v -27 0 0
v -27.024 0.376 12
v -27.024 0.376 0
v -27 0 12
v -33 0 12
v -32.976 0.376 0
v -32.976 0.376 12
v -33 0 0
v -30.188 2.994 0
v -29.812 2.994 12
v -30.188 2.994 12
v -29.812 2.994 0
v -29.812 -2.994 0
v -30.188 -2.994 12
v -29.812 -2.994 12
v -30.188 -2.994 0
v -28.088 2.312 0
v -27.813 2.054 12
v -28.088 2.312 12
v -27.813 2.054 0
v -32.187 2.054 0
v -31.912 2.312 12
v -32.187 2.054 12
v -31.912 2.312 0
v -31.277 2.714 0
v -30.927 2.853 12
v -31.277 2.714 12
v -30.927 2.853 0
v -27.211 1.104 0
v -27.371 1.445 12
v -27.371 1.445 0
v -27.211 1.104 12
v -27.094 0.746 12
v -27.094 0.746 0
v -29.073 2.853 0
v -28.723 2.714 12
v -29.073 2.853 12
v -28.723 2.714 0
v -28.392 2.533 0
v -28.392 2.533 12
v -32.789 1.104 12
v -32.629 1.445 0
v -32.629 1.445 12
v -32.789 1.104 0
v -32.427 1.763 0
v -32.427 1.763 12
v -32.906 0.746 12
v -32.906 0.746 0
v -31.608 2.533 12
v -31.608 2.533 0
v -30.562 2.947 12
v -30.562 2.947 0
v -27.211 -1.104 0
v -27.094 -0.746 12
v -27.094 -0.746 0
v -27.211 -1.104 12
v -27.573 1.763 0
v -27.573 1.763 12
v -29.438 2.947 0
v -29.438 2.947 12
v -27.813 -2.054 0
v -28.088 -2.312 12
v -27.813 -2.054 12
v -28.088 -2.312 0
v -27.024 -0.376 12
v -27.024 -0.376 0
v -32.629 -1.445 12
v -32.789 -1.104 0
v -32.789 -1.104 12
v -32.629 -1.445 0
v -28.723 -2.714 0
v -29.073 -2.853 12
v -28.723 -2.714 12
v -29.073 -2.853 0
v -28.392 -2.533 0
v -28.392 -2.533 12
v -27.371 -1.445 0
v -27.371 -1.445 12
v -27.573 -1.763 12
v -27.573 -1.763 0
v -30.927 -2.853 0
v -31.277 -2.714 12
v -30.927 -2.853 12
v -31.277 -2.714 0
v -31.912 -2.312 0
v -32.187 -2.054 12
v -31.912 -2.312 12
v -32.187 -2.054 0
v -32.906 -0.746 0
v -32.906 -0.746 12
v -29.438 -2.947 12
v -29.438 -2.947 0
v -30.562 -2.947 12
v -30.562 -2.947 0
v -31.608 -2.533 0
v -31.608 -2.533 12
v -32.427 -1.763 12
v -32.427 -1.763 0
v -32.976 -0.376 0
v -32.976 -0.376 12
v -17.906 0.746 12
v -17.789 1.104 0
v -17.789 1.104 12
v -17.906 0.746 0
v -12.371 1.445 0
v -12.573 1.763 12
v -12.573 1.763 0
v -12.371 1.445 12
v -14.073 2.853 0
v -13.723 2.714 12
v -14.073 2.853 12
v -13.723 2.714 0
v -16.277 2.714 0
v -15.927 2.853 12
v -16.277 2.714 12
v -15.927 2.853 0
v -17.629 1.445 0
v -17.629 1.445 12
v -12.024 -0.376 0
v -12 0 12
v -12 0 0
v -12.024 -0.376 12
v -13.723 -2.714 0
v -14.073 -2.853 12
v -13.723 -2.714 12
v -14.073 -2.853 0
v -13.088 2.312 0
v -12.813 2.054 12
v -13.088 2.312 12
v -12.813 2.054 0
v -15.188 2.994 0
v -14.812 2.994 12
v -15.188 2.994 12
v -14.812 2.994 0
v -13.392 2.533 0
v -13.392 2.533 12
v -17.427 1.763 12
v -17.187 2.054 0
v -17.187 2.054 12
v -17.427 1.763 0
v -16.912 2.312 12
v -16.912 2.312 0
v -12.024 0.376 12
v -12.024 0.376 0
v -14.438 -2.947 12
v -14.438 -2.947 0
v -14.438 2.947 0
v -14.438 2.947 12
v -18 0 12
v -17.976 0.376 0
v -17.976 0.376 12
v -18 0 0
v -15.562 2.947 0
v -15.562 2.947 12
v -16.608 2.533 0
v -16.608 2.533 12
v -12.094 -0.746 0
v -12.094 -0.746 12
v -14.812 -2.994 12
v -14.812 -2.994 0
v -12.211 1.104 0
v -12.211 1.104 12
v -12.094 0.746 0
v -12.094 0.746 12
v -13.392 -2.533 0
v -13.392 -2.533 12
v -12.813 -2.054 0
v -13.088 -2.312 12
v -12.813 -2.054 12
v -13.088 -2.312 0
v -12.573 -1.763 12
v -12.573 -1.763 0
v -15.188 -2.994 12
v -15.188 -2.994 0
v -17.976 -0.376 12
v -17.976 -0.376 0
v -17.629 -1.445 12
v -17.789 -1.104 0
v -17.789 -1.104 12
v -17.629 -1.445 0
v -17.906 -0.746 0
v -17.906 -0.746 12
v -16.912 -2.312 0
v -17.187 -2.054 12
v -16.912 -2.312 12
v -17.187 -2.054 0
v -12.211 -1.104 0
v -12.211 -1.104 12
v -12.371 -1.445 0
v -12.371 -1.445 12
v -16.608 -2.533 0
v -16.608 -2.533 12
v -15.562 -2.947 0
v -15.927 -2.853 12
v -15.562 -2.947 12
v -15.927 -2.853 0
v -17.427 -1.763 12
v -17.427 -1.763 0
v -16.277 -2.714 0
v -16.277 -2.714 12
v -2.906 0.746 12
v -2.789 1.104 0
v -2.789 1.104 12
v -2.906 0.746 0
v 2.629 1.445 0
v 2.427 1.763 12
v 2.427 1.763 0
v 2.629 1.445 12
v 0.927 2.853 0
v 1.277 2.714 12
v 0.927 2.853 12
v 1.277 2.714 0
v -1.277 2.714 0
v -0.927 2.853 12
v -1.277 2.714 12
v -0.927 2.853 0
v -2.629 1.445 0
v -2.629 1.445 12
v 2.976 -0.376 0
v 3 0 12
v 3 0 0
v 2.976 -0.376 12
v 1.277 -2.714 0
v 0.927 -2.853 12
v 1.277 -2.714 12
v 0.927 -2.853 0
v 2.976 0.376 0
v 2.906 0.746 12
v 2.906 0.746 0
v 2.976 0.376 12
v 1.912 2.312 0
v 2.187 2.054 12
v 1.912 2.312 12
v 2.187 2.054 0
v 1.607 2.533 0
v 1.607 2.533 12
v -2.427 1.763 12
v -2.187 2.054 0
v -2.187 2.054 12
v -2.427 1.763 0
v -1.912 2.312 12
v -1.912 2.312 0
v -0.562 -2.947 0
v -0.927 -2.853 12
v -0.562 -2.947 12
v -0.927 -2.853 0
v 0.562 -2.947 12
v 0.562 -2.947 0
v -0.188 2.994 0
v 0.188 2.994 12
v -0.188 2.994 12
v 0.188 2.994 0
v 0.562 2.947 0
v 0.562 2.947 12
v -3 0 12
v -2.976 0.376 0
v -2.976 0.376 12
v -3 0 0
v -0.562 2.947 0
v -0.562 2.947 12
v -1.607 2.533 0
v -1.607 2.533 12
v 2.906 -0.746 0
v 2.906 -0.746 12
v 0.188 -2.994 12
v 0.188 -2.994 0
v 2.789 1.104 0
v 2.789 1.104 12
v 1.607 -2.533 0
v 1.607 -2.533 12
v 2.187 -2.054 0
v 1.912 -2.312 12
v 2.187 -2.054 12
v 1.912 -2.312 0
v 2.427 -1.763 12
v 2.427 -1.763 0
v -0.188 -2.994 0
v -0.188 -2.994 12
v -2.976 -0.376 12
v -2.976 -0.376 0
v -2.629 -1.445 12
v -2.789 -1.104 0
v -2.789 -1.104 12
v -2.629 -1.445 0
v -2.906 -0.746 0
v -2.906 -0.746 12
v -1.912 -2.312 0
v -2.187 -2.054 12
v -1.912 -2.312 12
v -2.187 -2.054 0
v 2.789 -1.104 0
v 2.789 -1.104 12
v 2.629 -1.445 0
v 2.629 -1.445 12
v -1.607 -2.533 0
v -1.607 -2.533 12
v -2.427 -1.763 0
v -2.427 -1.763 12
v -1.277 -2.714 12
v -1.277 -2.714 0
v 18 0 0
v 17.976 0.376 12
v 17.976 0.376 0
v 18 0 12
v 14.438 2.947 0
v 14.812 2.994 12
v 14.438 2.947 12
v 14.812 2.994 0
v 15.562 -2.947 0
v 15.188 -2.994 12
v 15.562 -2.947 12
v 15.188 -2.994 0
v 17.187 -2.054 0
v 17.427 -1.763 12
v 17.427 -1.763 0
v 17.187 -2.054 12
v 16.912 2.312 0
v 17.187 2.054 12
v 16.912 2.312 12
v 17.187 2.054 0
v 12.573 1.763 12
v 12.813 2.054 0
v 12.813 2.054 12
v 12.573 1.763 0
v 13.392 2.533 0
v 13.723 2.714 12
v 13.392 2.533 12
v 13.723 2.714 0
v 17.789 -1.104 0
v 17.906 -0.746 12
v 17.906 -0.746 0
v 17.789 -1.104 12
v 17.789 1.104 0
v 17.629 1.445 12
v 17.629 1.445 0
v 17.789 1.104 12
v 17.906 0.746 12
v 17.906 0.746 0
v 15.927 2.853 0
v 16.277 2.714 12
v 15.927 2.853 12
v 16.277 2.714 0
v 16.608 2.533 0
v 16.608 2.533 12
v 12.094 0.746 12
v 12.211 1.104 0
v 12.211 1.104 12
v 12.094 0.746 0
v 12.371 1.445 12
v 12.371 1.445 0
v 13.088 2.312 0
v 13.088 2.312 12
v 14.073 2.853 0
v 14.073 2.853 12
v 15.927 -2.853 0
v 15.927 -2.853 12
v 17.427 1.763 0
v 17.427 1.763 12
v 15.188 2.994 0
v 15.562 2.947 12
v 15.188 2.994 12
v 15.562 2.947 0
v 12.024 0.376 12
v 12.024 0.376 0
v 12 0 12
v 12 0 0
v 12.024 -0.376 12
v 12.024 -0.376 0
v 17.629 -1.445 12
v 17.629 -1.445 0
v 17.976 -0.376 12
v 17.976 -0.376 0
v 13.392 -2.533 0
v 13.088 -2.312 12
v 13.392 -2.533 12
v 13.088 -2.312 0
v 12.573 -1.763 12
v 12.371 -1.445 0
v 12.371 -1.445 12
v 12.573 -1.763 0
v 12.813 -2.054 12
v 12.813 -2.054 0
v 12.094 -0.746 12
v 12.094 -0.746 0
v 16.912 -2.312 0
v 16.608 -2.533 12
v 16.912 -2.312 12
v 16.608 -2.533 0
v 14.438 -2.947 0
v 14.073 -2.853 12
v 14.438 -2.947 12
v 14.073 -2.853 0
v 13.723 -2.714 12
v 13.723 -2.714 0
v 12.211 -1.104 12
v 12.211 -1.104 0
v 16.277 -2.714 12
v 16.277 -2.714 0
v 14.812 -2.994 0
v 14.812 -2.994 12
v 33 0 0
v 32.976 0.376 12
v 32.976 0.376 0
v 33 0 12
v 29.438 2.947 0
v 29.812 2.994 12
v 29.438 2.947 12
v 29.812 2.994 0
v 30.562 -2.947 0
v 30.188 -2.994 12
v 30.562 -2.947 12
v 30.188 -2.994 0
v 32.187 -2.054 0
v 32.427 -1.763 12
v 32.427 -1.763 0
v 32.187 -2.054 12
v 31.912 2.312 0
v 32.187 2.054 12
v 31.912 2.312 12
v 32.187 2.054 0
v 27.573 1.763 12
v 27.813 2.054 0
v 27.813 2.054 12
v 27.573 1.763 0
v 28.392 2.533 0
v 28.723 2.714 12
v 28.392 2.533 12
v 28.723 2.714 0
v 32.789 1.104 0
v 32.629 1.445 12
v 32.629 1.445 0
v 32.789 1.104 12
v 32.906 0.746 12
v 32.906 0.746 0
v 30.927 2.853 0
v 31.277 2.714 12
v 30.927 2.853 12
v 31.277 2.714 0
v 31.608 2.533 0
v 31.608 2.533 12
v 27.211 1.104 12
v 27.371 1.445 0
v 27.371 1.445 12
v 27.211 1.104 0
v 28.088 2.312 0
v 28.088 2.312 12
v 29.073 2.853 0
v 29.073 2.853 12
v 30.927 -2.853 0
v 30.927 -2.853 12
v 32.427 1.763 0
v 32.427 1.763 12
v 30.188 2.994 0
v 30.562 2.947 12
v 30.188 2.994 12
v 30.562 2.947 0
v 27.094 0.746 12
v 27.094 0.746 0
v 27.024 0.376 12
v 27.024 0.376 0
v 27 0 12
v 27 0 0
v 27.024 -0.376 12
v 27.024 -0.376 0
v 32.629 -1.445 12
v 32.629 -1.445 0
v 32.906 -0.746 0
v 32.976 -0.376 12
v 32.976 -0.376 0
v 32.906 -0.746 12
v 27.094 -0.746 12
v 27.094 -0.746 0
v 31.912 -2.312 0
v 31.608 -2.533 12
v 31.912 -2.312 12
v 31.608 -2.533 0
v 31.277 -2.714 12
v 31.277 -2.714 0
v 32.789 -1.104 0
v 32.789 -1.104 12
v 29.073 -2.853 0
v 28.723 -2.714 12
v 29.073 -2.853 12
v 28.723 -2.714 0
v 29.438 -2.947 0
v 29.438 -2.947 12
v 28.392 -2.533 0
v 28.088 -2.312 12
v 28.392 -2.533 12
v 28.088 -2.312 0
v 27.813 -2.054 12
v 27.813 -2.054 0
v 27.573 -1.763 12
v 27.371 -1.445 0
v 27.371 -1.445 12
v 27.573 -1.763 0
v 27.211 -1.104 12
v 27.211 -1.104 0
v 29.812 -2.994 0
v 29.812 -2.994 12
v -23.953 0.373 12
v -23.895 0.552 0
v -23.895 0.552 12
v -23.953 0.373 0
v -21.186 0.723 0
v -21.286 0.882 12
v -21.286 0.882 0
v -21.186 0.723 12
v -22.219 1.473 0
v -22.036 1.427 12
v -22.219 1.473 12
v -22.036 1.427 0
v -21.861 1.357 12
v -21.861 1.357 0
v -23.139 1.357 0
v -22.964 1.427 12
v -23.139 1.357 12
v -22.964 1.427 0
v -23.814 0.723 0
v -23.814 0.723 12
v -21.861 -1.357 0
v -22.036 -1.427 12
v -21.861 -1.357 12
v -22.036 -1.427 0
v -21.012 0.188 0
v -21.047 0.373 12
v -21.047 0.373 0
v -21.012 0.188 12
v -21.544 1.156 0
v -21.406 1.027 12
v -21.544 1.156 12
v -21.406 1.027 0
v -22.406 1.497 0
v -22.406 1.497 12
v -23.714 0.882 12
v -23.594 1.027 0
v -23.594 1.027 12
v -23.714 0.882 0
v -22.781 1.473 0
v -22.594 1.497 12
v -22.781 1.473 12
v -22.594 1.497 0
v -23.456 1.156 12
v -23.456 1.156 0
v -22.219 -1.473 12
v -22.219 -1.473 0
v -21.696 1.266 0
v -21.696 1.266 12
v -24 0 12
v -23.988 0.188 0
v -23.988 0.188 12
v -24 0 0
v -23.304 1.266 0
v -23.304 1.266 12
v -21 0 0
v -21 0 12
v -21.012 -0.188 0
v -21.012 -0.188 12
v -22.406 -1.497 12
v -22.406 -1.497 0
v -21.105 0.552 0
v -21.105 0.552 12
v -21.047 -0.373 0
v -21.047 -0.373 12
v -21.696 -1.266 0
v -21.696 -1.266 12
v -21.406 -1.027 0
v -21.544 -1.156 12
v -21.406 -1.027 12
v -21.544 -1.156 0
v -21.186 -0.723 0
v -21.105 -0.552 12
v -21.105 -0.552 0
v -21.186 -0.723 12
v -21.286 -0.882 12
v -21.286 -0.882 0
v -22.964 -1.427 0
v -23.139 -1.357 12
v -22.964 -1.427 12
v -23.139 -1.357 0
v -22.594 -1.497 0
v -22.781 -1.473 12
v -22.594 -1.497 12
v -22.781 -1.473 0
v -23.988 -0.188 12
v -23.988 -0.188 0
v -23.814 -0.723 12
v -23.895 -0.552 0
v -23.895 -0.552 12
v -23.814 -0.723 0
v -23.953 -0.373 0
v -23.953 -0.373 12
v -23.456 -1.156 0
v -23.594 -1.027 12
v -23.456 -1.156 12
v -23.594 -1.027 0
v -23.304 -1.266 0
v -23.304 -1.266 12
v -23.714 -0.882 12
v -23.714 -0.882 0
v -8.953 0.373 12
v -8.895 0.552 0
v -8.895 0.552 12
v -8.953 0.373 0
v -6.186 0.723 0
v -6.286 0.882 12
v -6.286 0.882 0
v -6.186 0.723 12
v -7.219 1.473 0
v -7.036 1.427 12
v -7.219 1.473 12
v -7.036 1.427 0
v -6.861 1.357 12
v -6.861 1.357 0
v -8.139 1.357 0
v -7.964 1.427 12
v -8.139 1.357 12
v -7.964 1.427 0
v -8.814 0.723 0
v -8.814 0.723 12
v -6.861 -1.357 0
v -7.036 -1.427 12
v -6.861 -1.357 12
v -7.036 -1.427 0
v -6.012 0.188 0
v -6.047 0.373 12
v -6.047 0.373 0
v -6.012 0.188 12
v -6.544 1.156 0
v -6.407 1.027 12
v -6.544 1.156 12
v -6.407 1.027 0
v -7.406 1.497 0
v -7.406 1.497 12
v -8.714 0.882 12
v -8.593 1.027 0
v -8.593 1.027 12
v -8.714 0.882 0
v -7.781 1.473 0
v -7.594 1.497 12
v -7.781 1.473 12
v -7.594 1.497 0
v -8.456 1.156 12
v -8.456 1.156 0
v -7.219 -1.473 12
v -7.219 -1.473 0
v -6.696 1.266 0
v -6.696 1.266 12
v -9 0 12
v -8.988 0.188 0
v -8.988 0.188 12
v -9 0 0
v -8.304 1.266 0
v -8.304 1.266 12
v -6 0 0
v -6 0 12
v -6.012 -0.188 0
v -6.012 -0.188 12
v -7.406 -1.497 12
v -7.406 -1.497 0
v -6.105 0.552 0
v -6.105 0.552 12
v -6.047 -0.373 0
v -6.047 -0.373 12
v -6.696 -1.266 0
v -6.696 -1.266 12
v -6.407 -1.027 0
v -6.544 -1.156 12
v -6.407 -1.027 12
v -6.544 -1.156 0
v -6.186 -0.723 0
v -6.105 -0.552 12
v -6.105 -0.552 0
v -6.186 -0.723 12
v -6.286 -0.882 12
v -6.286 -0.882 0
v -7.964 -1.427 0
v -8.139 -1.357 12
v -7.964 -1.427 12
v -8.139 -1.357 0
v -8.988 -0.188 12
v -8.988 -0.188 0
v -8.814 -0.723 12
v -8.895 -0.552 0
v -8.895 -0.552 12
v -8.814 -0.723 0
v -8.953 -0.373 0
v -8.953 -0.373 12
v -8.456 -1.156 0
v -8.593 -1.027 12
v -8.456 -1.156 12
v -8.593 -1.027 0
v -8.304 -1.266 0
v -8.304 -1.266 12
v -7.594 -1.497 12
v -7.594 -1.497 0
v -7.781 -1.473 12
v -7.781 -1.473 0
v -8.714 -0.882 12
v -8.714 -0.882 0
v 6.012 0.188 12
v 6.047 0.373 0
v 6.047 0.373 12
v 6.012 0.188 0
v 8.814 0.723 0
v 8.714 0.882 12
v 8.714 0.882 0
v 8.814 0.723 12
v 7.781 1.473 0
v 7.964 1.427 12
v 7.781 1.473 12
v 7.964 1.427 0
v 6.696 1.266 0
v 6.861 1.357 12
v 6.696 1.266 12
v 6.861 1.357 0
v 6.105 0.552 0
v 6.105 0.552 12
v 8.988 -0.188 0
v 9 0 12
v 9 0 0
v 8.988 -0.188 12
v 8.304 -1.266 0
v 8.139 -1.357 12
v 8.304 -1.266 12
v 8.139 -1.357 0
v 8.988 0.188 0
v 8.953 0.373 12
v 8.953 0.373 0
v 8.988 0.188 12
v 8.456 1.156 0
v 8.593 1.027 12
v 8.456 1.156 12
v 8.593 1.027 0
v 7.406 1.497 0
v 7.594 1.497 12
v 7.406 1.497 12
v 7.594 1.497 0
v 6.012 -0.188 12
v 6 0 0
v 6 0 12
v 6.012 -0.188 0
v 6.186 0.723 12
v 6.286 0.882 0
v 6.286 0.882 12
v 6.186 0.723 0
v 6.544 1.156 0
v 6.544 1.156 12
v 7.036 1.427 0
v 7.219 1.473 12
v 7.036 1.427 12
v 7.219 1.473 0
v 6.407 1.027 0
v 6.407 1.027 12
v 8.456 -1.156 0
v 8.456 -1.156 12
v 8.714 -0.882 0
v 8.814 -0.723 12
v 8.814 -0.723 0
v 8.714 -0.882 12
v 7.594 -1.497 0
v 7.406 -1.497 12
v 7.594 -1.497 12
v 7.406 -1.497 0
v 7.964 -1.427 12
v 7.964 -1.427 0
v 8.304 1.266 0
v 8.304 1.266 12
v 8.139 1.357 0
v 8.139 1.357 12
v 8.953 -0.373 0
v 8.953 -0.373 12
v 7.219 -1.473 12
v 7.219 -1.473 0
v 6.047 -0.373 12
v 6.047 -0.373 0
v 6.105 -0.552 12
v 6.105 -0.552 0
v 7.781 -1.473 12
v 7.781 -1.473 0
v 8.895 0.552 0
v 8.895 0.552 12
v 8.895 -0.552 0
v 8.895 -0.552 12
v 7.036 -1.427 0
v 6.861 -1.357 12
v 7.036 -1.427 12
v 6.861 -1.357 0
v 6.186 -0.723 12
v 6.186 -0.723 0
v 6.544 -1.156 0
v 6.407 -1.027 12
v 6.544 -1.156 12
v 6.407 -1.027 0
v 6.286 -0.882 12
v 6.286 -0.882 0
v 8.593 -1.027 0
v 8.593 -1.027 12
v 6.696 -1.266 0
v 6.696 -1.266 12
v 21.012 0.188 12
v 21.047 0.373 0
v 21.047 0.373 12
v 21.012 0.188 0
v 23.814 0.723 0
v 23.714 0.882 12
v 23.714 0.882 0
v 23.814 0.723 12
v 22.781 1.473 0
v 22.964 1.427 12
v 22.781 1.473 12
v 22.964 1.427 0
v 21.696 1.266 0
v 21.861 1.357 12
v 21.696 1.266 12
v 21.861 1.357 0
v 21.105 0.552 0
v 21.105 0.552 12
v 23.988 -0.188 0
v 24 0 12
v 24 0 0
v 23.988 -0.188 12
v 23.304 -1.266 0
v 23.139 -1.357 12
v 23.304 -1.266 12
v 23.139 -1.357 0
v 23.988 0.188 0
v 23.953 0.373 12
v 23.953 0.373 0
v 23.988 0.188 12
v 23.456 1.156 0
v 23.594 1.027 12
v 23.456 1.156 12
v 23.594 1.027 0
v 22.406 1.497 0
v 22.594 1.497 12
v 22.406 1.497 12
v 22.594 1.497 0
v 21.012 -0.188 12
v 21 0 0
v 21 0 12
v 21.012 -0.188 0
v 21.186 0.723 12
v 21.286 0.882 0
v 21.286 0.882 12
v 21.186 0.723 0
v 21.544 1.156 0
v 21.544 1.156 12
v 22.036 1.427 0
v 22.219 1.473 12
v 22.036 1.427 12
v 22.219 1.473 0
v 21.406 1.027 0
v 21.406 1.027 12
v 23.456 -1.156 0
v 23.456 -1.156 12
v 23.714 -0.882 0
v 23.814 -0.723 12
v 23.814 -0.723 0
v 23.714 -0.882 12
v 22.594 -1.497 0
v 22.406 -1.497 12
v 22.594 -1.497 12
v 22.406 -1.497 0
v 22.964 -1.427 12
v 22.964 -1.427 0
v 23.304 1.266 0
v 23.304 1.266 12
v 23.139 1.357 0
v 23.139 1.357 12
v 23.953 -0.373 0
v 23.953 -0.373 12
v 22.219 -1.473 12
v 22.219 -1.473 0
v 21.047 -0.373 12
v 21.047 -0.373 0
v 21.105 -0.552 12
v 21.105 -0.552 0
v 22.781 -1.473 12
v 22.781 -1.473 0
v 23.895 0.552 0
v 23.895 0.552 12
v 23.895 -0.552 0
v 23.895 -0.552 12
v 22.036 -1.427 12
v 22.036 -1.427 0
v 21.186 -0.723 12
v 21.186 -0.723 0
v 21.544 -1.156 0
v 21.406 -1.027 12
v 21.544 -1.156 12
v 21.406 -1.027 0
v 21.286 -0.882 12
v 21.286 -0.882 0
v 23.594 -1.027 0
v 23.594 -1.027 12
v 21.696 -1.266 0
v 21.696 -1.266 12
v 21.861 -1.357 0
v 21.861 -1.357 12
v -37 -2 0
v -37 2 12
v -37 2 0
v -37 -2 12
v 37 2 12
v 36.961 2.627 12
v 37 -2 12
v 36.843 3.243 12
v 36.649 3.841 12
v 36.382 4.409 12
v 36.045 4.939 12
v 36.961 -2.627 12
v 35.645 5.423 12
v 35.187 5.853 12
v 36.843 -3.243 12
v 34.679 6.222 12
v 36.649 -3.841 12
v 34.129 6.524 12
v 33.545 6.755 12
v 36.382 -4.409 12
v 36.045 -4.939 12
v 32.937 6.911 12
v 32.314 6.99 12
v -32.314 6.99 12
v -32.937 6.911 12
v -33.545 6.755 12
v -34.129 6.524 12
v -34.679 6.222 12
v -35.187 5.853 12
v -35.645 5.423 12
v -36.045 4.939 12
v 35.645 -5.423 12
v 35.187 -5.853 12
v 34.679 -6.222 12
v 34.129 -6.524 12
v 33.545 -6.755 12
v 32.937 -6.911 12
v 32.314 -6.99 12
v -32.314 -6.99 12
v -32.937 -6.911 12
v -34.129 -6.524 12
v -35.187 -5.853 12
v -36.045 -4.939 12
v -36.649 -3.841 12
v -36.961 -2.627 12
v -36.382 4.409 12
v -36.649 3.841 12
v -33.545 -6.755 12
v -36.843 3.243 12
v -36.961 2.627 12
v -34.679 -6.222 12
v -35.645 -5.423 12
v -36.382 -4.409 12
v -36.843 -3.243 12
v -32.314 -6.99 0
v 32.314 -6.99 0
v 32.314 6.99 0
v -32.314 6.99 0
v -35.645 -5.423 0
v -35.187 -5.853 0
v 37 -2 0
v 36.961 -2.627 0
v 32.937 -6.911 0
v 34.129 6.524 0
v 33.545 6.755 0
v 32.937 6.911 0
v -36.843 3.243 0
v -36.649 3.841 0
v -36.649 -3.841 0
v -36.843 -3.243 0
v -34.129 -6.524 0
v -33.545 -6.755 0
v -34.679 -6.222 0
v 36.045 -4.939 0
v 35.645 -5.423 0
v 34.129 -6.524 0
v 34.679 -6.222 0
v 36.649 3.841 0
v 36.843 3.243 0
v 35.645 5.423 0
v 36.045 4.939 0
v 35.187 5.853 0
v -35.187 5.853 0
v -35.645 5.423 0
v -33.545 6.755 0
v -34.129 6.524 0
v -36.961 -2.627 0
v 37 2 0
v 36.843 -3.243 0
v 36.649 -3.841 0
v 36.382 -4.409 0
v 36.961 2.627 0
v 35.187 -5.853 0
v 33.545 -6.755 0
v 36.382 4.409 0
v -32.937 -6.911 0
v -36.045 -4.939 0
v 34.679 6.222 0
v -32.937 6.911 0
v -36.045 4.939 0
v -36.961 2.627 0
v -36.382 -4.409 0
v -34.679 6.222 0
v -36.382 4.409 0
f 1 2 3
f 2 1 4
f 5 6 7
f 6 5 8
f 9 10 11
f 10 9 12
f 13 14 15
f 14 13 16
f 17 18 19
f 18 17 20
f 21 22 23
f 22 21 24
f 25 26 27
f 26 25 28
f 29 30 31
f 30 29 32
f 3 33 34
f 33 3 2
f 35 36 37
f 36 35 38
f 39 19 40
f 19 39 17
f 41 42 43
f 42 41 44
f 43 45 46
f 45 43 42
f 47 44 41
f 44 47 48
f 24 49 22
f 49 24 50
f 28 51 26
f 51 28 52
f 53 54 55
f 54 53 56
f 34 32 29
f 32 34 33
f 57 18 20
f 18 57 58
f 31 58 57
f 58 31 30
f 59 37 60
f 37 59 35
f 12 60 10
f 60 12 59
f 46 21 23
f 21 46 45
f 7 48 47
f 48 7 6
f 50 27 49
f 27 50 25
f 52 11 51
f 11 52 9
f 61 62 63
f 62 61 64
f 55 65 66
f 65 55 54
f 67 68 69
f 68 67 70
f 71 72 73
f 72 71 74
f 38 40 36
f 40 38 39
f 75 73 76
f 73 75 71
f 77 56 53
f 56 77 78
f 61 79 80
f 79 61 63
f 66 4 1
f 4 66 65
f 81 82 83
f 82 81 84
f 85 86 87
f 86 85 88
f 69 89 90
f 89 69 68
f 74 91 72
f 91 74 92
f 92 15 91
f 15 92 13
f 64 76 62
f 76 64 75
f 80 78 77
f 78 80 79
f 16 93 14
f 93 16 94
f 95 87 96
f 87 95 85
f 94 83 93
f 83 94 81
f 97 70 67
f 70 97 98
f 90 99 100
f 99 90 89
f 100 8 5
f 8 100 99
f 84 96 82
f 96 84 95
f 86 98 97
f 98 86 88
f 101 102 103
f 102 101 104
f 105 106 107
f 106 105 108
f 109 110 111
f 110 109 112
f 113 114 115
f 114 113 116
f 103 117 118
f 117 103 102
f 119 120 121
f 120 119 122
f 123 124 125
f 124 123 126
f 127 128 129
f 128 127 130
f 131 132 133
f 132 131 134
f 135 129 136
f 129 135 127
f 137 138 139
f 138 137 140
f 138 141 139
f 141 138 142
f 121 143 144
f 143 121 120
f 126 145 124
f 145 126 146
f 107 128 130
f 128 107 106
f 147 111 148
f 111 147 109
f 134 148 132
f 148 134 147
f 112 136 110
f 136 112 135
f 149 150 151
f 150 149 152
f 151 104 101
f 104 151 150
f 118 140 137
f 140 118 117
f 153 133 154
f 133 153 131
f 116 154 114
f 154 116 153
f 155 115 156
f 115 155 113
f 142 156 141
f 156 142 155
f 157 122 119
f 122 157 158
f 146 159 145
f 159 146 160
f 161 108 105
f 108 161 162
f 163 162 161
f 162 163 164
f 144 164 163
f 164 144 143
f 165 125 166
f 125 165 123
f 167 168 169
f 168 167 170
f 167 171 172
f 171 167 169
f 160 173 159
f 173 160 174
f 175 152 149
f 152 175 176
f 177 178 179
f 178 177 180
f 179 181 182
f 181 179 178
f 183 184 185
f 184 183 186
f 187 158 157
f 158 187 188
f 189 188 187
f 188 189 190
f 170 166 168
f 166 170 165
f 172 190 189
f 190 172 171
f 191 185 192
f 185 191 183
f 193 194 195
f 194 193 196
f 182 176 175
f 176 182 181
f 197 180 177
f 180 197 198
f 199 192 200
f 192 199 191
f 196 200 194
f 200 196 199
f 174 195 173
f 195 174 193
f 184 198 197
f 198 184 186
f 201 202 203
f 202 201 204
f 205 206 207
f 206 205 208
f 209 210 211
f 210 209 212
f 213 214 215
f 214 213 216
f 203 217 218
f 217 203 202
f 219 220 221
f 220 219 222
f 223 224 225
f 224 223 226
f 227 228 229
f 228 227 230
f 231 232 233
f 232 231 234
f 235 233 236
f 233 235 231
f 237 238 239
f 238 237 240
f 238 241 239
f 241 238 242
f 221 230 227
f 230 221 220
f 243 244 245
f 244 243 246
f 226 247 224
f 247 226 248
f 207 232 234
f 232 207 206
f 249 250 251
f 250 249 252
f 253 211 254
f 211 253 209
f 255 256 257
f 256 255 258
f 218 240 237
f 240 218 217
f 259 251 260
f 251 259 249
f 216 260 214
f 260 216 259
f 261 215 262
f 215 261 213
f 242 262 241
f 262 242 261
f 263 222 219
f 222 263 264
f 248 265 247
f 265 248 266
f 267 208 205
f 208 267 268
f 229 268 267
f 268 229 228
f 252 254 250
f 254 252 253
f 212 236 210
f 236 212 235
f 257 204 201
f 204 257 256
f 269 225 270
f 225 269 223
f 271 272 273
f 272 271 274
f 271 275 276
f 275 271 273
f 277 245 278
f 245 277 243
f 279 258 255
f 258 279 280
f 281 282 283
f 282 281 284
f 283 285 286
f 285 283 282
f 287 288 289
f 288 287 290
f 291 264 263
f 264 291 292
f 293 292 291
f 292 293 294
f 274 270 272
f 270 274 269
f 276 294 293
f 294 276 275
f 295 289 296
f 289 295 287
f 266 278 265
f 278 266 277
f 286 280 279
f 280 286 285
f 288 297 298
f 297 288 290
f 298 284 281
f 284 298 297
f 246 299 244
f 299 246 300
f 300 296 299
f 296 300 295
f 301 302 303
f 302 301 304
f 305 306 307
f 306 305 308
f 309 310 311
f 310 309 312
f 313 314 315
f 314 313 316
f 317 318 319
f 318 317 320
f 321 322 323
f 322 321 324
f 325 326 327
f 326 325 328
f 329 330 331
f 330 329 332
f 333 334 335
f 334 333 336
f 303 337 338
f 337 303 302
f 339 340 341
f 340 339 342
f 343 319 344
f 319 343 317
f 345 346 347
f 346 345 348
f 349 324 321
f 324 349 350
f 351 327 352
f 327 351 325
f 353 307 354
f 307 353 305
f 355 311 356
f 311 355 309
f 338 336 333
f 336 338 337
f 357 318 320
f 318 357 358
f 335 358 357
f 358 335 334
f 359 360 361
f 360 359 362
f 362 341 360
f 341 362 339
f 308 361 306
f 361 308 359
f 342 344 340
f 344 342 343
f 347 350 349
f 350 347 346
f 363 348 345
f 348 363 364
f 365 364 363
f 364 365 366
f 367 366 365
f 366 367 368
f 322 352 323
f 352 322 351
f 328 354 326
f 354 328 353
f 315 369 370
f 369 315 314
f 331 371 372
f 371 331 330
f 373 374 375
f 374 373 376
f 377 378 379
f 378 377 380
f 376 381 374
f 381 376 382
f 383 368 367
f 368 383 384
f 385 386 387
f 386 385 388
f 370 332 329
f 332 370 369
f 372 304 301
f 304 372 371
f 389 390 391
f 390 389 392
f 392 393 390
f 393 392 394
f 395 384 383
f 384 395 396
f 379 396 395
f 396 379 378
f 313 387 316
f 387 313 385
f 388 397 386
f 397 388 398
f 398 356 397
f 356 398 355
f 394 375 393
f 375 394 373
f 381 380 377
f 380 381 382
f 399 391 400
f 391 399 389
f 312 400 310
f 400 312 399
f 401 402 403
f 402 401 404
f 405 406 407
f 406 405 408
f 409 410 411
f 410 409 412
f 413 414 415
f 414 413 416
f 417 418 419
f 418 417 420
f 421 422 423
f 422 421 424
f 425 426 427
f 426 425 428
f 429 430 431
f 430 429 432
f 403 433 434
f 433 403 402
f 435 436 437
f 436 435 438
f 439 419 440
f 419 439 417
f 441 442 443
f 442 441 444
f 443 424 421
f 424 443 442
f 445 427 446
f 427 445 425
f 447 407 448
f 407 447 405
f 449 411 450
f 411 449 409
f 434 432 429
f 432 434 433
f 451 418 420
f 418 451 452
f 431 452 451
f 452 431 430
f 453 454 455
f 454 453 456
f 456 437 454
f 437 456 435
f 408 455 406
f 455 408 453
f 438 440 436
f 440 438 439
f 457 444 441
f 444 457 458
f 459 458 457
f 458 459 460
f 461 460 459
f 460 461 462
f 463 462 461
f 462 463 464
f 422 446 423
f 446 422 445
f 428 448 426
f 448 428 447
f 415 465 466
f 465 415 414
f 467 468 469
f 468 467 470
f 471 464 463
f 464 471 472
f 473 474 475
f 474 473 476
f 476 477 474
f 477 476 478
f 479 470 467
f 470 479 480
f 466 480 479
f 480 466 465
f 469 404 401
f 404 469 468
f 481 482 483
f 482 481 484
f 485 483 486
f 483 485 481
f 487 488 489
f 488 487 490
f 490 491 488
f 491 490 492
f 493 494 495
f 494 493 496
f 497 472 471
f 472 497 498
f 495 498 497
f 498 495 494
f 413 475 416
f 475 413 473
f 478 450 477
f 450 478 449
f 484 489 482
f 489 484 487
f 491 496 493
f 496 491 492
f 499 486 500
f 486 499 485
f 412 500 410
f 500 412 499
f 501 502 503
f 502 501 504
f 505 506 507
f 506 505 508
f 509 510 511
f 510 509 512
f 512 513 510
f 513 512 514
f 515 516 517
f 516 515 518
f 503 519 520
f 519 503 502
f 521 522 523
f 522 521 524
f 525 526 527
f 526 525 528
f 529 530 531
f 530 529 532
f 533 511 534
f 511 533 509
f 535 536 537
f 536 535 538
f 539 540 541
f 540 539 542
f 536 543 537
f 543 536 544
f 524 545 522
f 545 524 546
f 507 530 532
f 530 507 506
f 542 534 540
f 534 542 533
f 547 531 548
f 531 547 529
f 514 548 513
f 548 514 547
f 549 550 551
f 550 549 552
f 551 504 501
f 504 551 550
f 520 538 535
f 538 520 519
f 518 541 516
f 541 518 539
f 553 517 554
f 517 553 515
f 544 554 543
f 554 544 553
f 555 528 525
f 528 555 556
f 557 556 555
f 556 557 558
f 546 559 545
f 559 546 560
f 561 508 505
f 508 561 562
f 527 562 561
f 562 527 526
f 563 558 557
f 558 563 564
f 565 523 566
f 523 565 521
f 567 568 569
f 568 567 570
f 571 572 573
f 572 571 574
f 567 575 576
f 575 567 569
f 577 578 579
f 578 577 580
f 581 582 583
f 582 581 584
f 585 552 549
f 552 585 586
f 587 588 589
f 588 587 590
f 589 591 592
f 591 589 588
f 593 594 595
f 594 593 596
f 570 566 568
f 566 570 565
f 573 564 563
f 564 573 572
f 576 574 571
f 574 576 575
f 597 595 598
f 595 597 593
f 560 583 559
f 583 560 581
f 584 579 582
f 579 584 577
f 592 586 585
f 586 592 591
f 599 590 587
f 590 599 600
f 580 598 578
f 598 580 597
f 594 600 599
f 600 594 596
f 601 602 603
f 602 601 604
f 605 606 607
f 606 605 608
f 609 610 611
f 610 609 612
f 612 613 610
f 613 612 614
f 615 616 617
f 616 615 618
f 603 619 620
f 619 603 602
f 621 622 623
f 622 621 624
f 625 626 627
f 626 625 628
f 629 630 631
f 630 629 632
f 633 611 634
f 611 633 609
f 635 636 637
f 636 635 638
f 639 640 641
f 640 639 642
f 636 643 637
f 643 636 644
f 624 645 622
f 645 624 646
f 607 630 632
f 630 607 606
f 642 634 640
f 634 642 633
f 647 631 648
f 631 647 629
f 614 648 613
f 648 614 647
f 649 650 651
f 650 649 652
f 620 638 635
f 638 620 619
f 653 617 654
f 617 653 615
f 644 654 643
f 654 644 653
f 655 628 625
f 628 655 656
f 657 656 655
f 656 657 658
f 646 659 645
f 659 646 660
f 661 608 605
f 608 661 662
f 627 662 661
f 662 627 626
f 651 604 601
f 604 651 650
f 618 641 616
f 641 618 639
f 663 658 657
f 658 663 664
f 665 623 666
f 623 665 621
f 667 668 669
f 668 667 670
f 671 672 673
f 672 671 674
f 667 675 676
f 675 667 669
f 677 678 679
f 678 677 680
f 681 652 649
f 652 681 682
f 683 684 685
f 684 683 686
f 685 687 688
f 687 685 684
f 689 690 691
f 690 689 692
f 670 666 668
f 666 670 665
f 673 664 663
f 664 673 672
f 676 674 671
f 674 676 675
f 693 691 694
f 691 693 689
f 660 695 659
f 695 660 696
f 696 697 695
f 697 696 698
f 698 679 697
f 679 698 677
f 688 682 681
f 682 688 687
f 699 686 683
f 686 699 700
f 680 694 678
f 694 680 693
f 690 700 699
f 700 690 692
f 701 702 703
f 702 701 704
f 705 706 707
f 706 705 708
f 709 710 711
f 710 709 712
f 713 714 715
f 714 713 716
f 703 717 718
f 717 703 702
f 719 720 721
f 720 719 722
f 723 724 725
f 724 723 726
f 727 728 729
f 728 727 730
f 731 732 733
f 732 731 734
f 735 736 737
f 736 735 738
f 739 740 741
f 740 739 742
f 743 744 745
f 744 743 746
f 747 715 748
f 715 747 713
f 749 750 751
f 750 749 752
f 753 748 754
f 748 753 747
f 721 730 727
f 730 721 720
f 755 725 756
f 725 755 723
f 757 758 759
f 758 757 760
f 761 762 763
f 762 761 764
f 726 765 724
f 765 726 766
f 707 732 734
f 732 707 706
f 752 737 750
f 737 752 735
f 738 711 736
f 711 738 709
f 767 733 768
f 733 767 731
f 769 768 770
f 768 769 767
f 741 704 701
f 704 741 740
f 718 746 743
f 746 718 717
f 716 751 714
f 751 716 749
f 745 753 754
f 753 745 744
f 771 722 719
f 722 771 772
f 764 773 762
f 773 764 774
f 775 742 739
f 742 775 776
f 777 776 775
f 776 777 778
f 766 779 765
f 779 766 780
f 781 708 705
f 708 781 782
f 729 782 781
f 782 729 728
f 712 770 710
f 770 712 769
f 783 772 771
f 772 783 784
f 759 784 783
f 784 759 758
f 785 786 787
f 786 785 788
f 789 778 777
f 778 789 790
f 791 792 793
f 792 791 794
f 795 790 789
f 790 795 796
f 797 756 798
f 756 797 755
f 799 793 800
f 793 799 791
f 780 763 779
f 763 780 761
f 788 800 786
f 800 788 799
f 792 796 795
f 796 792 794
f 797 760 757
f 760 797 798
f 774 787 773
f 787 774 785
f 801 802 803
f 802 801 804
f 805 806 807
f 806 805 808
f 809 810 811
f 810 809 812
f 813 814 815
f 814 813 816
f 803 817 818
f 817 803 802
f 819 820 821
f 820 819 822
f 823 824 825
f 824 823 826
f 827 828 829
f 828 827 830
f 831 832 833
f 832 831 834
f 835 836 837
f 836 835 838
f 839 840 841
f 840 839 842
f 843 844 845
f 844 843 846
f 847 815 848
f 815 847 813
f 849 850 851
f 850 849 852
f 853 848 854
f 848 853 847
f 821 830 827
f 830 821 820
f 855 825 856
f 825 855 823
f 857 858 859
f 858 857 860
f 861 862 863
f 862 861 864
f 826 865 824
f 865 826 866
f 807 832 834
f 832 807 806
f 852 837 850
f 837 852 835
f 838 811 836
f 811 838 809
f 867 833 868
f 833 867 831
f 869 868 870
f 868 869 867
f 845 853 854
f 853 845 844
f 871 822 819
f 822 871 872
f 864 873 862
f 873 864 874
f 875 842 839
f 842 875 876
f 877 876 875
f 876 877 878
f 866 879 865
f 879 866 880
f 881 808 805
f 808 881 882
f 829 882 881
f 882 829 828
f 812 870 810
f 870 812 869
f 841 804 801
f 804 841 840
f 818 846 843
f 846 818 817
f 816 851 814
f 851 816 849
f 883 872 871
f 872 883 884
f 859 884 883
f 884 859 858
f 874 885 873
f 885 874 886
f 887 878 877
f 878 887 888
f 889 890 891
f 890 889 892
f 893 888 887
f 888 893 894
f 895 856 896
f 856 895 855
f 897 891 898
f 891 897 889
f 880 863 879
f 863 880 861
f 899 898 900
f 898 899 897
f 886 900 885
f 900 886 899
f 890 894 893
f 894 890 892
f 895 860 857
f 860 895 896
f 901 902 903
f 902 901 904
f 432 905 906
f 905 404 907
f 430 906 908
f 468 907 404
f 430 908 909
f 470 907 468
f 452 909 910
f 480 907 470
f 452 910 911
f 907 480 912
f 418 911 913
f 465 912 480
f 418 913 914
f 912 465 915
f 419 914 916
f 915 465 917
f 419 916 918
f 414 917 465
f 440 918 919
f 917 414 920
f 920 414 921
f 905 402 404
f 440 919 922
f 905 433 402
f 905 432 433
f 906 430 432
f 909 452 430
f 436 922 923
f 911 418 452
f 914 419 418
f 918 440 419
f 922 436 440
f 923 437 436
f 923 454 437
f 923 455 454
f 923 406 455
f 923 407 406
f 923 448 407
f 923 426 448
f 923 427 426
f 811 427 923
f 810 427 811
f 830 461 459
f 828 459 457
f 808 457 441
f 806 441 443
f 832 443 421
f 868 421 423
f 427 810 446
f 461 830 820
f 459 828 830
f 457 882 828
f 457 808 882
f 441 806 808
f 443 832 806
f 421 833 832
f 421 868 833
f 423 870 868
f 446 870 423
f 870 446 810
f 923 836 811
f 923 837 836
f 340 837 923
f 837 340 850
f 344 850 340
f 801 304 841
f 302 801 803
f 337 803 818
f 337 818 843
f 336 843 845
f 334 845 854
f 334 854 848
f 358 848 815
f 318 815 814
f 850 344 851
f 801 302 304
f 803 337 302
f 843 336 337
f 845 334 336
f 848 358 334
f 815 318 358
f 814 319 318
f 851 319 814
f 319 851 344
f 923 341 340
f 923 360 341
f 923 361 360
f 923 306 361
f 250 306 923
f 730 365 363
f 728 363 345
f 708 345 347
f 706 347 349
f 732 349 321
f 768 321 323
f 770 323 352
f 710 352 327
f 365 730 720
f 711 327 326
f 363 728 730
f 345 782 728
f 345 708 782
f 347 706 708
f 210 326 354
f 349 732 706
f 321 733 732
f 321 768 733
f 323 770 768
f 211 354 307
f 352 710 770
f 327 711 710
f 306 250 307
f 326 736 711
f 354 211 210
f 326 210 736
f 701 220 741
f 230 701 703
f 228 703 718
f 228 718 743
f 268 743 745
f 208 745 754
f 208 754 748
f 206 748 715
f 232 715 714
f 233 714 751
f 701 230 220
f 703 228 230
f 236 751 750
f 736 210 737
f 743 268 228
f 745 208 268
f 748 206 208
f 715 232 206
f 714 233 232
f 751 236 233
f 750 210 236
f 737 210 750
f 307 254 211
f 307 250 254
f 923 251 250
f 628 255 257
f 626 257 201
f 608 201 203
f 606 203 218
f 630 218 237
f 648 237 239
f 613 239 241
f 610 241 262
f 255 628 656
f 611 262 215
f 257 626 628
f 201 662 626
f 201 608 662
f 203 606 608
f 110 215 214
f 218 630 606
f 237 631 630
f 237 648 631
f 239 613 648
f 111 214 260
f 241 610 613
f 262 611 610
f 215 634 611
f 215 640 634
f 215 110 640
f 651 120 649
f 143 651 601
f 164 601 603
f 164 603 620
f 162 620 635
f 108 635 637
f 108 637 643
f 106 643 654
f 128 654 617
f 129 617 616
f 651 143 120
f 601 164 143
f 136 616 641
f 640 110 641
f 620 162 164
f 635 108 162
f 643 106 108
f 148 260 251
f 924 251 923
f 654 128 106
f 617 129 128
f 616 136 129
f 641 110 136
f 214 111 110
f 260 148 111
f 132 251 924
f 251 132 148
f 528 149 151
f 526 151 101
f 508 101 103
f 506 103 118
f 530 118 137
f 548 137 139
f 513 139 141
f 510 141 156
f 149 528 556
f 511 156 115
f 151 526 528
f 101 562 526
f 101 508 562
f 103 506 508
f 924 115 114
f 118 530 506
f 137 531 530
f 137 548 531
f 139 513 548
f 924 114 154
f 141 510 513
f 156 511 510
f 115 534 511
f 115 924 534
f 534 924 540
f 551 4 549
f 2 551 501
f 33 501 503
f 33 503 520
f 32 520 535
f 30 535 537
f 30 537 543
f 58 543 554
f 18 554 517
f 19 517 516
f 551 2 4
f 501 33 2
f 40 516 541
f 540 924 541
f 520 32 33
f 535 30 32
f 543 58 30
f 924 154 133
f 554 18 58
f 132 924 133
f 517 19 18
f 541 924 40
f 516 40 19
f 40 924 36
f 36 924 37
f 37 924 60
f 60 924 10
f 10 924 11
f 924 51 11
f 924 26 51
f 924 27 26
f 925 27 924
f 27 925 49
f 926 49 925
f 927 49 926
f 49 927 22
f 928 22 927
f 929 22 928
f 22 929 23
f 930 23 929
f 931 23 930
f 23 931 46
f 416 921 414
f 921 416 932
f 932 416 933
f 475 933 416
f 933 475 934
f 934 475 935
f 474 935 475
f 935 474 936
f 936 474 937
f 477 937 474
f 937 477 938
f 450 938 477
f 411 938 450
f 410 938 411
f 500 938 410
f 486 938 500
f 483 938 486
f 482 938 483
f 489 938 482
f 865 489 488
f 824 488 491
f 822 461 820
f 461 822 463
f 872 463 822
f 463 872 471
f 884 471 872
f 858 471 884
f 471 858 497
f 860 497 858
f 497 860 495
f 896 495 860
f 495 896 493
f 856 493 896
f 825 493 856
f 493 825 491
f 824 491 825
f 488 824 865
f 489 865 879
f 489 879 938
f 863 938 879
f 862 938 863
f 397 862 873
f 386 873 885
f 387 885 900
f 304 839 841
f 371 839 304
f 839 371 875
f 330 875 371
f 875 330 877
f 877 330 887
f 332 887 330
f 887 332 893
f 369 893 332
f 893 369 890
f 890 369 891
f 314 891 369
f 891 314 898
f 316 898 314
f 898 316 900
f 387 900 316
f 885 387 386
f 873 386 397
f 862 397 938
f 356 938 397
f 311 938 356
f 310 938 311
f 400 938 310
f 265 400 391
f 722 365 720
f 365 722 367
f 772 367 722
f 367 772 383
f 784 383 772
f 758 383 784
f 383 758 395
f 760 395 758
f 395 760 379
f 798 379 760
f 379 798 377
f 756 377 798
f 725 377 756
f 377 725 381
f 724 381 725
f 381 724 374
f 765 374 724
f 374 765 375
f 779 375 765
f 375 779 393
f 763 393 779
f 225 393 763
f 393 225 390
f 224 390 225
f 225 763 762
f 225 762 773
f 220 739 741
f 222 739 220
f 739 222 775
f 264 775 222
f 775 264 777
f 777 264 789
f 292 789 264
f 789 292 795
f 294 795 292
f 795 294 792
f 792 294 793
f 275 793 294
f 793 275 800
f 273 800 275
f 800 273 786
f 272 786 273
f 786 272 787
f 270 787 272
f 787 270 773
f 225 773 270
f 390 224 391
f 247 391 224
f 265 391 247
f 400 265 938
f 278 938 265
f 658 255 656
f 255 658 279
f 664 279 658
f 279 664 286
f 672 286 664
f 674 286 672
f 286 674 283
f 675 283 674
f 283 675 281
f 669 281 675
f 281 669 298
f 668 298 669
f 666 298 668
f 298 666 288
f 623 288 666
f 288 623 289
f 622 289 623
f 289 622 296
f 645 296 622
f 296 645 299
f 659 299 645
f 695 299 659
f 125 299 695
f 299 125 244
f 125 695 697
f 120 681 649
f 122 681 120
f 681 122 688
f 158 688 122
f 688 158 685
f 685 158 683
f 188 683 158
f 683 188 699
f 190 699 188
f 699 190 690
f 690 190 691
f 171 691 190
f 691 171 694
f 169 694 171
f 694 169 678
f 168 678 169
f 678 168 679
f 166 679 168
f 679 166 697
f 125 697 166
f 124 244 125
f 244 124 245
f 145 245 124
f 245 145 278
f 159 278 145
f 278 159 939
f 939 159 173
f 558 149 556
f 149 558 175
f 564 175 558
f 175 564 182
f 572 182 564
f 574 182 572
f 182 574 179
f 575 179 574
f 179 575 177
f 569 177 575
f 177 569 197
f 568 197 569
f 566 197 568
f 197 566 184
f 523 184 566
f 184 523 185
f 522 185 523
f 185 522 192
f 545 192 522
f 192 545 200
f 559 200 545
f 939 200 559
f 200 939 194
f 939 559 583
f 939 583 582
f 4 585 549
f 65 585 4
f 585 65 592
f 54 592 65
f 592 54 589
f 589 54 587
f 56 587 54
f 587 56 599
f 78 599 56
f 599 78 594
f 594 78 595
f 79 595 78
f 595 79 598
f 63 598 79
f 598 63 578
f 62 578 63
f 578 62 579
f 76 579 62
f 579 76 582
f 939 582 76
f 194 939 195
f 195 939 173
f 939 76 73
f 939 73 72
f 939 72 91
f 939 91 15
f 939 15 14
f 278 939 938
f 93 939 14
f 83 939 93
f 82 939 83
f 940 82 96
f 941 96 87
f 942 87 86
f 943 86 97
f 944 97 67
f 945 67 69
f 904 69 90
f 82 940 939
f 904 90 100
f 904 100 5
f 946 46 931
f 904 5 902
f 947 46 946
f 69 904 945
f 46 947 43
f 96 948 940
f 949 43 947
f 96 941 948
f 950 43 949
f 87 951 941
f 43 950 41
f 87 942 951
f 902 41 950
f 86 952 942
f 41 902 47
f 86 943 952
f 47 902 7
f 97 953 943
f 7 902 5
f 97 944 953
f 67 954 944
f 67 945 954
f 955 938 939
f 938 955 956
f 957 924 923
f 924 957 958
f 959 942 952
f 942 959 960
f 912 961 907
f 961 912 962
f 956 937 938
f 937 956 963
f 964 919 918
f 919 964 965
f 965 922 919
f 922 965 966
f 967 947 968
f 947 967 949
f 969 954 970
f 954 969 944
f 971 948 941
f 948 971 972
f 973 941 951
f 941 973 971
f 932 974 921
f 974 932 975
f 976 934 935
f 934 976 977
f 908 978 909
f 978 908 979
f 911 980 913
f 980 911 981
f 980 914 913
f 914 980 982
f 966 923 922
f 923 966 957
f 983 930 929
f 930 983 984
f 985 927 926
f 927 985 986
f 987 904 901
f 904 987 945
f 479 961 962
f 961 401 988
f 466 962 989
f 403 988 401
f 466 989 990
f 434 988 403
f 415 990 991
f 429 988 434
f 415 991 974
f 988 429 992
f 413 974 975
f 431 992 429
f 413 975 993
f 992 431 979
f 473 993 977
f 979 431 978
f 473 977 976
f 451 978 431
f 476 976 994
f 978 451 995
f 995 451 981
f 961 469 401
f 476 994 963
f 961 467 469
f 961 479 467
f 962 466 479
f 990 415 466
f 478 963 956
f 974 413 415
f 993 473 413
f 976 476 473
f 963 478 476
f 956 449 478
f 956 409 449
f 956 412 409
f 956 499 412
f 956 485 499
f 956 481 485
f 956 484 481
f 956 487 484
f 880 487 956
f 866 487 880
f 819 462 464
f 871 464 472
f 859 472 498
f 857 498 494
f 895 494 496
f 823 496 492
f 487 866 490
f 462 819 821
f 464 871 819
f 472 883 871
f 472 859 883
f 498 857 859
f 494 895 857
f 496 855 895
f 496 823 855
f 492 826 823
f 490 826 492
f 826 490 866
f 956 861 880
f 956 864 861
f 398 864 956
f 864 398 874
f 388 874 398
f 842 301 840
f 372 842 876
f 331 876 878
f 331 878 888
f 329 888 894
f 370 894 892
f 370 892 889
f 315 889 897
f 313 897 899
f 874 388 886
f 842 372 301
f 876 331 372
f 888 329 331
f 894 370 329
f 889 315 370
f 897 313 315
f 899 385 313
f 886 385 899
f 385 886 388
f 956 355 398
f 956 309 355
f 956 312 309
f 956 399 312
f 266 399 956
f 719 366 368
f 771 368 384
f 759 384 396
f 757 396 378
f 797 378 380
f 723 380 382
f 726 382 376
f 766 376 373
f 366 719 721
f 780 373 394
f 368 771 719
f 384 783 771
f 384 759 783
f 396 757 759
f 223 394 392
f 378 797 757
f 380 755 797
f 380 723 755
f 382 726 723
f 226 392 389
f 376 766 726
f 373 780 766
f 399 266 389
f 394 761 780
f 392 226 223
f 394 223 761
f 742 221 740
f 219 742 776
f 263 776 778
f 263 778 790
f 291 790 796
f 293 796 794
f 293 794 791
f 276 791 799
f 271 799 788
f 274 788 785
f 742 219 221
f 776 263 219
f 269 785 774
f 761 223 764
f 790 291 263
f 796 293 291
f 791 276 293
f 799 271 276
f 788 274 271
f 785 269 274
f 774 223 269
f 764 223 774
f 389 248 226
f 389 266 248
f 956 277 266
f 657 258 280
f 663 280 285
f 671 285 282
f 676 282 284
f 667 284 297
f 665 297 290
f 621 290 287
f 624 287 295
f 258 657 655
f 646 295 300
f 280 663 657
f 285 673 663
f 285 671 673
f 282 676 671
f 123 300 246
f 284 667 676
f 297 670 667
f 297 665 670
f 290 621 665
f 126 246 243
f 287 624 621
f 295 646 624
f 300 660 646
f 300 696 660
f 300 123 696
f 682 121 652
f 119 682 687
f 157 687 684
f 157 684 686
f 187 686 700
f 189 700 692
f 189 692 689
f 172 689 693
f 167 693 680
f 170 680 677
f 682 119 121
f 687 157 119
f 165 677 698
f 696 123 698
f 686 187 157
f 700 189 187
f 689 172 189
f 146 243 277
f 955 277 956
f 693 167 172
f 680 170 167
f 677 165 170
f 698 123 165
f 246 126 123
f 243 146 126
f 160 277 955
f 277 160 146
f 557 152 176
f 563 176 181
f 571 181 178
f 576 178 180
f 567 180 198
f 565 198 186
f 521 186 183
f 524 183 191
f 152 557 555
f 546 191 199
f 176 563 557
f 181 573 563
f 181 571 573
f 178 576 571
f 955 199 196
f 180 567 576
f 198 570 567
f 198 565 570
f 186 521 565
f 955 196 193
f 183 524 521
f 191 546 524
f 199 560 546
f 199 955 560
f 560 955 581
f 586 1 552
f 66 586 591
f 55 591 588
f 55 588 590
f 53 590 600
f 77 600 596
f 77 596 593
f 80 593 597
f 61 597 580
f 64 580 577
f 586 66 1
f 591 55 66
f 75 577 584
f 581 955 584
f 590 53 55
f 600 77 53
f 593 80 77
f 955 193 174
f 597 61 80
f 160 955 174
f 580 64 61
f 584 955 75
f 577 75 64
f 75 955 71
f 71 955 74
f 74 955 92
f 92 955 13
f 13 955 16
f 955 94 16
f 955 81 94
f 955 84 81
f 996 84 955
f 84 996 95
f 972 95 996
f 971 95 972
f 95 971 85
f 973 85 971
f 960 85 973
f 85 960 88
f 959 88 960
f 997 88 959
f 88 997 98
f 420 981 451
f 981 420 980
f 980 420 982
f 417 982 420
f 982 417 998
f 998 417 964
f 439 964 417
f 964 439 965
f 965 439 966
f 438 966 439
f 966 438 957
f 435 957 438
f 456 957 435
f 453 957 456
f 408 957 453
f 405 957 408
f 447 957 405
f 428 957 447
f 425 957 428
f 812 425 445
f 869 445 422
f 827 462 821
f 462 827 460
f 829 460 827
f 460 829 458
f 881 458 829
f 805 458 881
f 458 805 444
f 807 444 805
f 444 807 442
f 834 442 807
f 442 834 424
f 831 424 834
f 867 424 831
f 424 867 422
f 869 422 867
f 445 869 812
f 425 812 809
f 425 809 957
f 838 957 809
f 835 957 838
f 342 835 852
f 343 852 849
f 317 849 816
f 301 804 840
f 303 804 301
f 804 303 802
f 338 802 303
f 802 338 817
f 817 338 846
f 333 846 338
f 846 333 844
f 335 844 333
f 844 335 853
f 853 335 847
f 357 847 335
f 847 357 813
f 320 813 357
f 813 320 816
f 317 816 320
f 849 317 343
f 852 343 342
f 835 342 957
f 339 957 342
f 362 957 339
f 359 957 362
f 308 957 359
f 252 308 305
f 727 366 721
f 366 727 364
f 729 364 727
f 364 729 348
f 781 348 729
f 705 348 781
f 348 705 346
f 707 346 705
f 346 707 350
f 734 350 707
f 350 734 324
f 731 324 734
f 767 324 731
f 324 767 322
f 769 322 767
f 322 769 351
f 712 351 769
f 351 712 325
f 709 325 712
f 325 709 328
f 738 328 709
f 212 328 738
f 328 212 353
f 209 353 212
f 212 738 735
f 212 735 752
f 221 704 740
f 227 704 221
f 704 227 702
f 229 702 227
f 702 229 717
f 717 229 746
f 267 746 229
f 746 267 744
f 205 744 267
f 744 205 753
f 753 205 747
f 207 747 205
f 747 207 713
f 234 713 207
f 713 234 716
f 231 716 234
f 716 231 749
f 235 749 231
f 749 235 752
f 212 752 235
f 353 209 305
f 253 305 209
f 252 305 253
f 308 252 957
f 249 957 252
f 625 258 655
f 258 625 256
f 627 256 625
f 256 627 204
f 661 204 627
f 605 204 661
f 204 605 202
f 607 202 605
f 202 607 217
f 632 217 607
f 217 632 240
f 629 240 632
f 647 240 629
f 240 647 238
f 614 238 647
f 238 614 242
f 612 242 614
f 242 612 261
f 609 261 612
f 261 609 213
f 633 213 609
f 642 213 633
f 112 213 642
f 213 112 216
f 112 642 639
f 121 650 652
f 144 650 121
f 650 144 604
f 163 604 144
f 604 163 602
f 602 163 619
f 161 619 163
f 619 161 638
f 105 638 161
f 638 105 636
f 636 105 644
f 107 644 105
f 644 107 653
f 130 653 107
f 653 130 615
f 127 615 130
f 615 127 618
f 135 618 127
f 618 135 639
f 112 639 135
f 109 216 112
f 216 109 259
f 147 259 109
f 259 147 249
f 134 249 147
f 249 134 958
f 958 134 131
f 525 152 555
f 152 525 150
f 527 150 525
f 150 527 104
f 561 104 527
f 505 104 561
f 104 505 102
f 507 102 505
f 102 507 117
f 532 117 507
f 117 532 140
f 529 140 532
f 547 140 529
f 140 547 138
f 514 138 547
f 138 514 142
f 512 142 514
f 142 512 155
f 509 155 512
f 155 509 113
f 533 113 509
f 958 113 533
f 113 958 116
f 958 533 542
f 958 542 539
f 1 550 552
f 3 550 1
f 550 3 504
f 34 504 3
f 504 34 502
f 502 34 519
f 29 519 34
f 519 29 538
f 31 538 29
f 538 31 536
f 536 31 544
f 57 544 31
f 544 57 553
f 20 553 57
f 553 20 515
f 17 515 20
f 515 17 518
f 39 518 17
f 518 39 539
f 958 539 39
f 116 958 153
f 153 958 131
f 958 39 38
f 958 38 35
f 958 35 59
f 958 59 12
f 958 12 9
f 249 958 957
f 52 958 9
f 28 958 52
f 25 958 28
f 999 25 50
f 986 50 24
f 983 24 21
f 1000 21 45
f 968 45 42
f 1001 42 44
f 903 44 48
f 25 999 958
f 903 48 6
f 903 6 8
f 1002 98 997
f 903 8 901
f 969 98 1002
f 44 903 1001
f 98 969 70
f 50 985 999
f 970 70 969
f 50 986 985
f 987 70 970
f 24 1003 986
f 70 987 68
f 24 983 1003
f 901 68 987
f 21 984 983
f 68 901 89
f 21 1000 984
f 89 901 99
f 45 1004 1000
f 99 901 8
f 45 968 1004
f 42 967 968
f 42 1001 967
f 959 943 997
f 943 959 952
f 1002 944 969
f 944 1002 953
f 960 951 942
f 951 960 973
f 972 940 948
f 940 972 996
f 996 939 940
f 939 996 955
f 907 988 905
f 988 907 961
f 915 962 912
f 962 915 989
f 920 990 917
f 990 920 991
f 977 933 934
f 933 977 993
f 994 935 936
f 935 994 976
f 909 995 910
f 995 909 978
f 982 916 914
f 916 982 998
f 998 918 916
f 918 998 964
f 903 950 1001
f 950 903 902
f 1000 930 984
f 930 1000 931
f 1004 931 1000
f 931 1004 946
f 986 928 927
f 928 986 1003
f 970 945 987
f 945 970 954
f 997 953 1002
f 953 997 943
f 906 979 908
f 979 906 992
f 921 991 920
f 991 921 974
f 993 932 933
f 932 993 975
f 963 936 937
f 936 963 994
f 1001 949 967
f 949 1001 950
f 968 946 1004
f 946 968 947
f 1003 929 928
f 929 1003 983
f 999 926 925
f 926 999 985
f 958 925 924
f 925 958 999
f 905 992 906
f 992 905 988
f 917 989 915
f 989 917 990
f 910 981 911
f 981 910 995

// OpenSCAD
$fn = 50;


difference() {
	union() {
		*color(alpha = 1.0000000000, c = "gray") {
			translate(v = [0, 7, 0]) {
				linear_extrude(height = 1) {
					text(font = "Arial:style=Bold", halign = "center", size = 4.5000000000, text = "COMMENT plate main", valign = "center");
				}
			}
		}
		*color(alpha = 1.0000000000, c = "gray") {
			translate(v = [0, 14, 0]) {
				linear_extrude(height = 1) {
					text(font = "Arial:style=Bold", halign = "center", size = 4.5000000000, text = "COMMENT description oobb_plate_shape_p_type_12_depth_5_width_1_height_12_thickness_true_both_holes", valign = "center");
				}
			}
		}
		hull() {
			translate(v = [-32.0000000000, 2.0000000000, 0]) {
				cylinder(h = 12, r = 5);
			}
			translate(v = [32.0000000000, 2.0000000000, 0]) {
				cylinder(h = 12, r = 5);
			}
			translate(v = [-32.0000000000, -2.0000000000, 0]) {
				cylinder(h = 12, r = 5);
			}
			translate(v = [32.0000000000, -2.0000000000, 0]) {
				cylinder(h = 12, r = 5);
			}
		}
	}
	union() {
		*color(alpha = 1.0000000000, c = "gray") {
			translate(v = [0, 7, 0]) {
				linear_extrude(height = 1) {
					text(font = "Arial:style=Bold", halign = "center", size = 4.5000000000, text = "COMMENT holes main", valign = "center");
				}
			}
		}
		*color(alpha = 1.0000000000, c = "gray") {
			translate(v = [0, 14, 0]) {
				linear_extrude(height = 1) {
					text(font = "Arial:style=Bold", halign = "center", size = 4.5000000000, text = "COMMENT description oobb_holes_shape_n_type_5_width_1_height_12_thickness_true_both_holes", valign = "center");
				}
			}
		}
		translate(v = [-30.0000000000, 0.0000000000, 0]) {
			translate(v = [0, 0, -50]) {
				cylinder(h = 100, r = 3.0000000000);
			}
		}
		translate(v = [-15.0000000000, 0.0000000000, 0]) {
			translate(v = [0, 0, -50]) {
				cylinder(h = 100, r = 3.0000000000);
			}
		}
		translate(v = [0, 0, -50]) {
			cylinder(h = 100, r = 3.0000000000);
		}
		translate(v = [15.0000000000, 0.0000000000, 0]) {
			translate(v = [0, 0, -50]) {
				cylinder(h = 100, r = 3.0000000000);
			}
		}
		translate(v = [30.0000000000, 0.0000000000, 0]) {
			translate(v = [0, 0, -50]) {
				cylinder(h = 100, r = 3.0000000000);
			}
		}
		translate(v = [-30.0000000000, 0.0000000000, 0]) {
			translate(v = [0, 0, -50]) {
				cylinder(h = 100, r = 1.5000000000);
			}
		}
		translate(v = [-22.5000000000, 0.0000000000, 0]) {
			translate(v = [0, 0, -50]) {
				cylinder(h = 100, r = 1.5000000000);
			}
		}
		translate(v = [-15.0000000000, 0.0000000000, 0]) {
			translate(v = [0, 0, -50]) {
				cylinder(h = 100, r = 1.5000000000);
			}
		}
		translate(v = [-7.5000000000, 0.0000000000, 0]) {
			translate(v = [0, 0, -50]) {
				cylinder(h = 100, r = 1.5000000000);
			}
		}
		translate(v = [0, 0, -50]) {
			cylinder(h = 100, r = 1.5000000000);
		}
		translate(v = [7.5000000000, 0.0000000000, 0]) {
			translate(v = [0, 0, -50]) {
				cylinder(h = 100, r = 1.5000000000);
			}
		}
		translate(v = [15.0000000000, 0.0000000000, 0]) {
			translate(v = [0, 0, -50]) {
				cylinder(h = 100, r = 1.5000000000);
			}
		}
		translate(v = [22.5000000000, 0.0000000000, 0]) {
			translate(v = [0, 0, -50]) {
				cylinder(h = 100, r = 1.5000000000);
			}
		}
		translate(v = [30.0000000000, 0.0000000000, 0]) {
			translate(v = [0, 0, -50]) {
				cylinder(h = 100, r = 1.5000000000);
			}
		}
	}
}
